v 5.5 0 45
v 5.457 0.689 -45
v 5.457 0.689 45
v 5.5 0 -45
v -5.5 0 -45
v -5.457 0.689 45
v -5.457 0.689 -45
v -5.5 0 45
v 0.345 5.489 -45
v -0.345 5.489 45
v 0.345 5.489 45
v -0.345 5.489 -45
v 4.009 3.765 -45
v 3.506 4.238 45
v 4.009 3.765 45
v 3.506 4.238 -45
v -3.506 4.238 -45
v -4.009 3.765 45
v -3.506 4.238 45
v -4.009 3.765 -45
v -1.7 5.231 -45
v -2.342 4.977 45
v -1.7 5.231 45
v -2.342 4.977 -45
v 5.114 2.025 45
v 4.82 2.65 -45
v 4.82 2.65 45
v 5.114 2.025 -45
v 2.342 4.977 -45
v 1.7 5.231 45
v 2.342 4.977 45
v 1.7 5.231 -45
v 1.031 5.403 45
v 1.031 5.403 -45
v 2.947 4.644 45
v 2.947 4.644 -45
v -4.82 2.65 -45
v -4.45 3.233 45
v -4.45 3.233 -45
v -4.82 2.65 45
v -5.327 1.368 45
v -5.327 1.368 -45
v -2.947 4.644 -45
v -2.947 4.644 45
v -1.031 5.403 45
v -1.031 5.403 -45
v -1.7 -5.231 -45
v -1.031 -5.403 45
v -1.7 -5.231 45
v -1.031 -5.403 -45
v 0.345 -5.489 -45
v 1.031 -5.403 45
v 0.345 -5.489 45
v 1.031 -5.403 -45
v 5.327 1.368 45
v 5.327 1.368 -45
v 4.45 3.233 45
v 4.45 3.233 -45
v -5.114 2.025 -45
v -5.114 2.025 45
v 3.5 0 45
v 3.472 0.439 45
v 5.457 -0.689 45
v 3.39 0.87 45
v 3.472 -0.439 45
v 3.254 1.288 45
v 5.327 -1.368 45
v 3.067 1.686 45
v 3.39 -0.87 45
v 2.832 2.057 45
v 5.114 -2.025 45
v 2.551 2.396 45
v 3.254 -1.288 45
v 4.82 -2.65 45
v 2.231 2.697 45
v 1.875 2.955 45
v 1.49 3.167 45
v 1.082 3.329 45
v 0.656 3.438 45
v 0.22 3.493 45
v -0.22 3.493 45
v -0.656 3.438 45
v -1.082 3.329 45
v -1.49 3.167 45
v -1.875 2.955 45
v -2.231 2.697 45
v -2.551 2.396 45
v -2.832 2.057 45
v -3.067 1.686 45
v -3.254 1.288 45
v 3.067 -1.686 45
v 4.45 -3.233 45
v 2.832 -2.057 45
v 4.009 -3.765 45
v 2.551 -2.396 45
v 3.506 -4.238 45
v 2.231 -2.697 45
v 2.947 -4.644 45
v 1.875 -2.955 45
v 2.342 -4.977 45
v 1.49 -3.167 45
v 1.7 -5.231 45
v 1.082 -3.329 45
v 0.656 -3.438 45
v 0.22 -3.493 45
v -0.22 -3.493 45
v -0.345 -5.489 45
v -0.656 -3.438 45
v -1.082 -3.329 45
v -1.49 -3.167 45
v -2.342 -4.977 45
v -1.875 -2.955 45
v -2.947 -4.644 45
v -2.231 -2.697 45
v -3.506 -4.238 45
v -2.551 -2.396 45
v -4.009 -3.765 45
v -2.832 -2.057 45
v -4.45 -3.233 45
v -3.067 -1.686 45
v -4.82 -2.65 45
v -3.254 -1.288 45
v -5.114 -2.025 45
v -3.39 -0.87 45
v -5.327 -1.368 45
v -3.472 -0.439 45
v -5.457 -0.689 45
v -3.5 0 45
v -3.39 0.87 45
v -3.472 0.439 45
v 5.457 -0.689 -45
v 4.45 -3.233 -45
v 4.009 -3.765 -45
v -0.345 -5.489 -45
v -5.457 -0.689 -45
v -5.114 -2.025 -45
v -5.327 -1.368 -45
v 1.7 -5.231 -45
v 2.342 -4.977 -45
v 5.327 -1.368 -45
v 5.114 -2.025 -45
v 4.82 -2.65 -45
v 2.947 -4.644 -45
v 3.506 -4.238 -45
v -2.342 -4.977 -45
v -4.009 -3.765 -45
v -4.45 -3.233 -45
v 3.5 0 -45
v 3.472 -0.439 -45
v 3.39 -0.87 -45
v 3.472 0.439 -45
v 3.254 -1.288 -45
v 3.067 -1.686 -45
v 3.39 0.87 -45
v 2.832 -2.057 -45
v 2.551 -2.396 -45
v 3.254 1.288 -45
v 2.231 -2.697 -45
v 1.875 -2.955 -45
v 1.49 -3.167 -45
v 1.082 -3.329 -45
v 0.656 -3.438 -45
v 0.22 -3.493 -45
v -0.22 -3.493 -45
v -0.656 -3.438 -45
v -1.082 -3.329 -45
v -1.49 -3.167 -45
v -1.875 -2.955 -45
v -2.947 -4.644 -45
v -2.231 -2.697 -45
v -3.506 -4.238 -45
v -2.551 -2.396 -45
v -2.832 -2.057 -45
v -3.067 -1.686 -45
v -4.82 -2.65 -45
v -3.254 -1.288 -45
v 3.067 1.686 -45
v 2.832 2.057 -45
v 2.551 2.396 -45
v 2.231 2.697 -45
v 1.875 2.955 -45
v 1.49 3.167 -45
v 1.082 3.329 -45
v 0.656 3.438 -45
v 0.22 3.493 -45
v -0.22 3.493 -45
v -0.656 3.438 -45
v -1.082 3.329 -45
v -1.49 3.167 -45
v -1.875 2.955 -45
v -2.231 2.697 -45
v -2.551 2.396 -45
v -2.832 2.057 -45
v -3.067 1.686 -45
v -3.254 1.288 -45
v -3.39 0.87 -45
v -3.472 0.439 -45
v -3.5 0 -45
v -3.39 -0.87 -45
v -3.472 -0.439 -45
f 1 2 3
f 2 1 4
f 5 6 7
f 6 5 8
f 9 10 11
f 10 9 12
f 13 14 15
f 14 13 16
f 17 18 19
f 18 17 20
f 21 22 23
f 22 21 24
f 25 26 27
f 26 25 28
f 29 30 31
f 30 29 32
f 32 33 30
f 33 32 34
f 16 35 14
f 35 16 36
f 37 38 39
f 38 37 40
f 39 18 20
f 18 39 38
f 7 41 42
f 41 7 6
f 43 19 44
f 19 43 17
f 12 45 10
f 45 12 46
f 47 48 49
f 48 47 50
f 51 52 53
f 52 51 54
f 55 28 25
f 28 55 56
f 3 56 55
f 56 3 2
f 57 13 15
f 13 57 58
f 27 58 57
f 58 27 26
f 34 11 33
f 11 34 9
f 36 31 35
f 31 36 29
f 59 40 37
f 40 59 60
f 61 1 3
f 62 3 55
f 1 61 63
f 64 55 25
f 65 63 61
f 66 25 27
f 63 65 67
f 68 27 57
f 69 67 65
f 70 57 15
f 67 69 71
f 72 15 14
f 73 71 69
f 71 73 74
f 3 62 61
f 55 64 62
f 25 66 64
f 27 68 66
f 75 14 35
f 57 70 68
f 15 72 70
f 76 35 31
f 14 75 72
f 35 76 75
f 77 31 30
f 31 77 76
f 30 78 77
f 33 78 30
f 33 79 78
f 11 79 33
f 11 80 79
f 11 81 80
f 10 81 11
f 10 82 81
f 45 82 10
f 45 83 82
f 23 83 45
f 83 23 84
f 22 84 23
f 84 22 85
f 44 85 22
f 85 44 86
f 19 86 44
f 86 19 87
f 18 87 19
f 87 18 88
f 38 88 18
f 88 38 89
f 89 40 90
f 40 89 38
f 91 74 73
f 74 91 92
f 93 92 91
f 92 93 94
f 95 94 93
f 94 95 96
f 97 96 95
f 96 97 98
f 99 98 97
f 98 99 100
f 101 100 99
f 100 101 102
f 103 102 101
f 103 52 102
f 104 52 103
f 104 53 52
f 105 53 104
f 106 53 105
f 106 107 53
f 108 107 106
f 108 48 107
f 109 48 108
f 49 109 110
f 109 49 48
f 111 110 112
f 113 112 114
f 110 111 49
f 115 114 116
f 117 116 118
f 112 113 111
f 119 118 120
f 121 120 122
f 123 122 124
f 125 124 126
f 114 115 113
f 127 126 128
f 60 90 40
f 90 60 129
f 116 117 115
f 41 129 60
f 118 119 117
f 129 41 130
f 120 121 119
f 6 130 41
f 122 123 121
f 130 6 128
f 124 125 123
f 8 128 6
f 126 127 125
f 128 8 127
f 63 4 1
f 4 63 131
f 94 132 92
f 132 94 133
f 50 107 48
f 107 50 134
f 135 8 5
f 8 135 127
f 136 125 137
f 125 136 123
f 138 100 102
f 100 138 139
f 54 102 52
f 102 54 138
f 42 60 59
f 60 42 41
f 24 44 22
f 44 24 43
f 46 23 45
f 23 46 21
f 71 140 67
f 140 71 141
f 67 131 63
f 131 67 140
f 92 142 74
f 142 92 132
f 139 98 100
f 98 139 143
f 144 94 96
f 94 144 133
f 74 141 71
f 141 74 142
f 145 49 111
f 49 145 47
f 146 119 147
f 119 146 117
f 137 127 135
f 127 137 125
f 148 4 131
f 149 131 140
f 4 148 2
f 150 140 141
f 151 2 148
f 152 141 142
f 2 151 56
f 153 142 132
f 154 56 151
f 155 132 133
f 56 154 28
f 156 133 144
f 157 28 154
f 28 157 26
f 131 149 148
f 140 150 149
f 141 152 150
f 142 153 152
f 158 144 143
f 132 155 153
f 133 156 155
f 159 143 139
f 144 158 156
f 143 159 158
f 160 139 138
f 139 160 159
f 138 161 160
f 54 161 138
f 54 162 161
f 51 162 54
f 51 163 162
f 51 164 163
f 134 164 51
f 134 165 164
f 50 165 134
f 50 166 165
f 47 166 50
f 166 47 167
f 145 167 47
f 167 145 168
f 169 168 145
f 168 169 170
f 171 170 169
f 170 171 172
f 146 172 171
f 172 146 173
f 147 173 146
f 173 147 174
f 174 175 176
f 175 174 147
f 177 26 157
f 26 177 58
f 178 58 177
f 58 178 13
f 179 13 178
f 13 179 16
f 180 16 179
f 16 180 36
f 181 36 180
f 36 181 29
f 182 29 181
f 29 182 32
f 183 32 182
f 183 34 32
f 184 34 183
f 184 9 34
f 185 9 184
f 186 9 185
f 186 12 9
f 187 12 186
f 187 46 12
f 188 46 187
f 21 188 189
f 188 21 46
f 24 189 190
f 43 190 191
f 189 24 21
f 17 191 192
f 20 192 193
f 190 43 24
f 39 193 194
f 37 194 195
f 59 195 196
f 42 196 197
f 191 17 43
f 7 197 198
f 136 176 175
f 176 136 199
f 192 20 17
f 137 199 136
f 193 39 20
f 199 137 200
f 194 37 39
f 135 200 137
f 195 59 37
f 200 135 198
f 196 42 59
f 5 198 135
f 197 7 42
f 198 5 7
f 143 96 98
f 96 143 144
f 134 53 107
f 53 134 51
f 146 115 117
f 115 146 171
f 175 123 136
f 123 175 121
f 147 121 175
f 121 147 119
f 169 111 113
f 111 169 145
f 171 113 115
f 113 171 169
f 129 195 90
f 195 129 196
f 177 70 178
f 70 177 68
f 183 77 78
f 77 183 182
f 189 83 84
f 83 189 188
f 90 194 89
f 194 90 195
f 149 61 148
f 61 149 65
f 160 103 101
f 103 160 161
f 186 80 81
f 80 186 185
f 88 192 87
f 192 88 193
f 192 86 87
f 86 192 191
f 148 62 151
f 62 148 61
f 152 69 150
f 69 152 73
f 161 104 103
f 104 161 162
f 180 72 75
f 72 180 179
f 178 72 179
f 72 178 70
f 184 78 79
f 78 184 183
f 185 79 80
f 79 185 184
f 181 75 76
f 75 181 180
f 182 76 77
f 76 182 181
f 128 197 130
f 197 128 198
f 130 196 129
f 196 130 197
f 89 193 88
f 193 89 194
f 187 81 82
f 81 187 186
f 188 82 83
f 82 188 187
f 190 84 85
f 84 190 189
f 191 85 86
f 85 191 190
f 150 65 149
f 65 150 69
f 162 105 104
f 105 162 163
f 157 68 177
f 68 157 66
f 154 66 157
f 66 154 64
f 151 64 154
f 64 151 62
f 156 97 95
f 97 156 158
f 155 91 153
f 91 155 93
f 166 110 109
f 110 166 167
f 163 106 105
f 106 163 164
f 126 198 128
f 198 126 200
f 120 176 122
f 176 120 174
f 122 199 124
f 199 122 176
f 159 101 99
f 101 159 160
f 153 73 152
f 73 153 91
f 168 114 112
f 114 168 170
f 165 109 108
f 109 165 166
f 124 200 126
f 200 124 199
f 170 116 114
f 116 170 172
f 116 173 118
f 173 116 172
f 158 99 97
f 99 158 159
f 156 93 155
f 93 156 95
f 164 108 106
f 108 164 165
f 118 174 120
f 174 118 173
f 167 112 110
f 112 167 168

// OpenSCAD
$fn = 50;


difference() {
	union() {
		translate(v = [0, 0, -45.0000000000]) {
			cylinder(h = 90, r = 5.5000000000);
		}
	}
	union() {
		translate(v = [0, 0, -100.0000000000]) {
			cylinder(h = 200, r = 3.5000000000);
		}
	}
}
